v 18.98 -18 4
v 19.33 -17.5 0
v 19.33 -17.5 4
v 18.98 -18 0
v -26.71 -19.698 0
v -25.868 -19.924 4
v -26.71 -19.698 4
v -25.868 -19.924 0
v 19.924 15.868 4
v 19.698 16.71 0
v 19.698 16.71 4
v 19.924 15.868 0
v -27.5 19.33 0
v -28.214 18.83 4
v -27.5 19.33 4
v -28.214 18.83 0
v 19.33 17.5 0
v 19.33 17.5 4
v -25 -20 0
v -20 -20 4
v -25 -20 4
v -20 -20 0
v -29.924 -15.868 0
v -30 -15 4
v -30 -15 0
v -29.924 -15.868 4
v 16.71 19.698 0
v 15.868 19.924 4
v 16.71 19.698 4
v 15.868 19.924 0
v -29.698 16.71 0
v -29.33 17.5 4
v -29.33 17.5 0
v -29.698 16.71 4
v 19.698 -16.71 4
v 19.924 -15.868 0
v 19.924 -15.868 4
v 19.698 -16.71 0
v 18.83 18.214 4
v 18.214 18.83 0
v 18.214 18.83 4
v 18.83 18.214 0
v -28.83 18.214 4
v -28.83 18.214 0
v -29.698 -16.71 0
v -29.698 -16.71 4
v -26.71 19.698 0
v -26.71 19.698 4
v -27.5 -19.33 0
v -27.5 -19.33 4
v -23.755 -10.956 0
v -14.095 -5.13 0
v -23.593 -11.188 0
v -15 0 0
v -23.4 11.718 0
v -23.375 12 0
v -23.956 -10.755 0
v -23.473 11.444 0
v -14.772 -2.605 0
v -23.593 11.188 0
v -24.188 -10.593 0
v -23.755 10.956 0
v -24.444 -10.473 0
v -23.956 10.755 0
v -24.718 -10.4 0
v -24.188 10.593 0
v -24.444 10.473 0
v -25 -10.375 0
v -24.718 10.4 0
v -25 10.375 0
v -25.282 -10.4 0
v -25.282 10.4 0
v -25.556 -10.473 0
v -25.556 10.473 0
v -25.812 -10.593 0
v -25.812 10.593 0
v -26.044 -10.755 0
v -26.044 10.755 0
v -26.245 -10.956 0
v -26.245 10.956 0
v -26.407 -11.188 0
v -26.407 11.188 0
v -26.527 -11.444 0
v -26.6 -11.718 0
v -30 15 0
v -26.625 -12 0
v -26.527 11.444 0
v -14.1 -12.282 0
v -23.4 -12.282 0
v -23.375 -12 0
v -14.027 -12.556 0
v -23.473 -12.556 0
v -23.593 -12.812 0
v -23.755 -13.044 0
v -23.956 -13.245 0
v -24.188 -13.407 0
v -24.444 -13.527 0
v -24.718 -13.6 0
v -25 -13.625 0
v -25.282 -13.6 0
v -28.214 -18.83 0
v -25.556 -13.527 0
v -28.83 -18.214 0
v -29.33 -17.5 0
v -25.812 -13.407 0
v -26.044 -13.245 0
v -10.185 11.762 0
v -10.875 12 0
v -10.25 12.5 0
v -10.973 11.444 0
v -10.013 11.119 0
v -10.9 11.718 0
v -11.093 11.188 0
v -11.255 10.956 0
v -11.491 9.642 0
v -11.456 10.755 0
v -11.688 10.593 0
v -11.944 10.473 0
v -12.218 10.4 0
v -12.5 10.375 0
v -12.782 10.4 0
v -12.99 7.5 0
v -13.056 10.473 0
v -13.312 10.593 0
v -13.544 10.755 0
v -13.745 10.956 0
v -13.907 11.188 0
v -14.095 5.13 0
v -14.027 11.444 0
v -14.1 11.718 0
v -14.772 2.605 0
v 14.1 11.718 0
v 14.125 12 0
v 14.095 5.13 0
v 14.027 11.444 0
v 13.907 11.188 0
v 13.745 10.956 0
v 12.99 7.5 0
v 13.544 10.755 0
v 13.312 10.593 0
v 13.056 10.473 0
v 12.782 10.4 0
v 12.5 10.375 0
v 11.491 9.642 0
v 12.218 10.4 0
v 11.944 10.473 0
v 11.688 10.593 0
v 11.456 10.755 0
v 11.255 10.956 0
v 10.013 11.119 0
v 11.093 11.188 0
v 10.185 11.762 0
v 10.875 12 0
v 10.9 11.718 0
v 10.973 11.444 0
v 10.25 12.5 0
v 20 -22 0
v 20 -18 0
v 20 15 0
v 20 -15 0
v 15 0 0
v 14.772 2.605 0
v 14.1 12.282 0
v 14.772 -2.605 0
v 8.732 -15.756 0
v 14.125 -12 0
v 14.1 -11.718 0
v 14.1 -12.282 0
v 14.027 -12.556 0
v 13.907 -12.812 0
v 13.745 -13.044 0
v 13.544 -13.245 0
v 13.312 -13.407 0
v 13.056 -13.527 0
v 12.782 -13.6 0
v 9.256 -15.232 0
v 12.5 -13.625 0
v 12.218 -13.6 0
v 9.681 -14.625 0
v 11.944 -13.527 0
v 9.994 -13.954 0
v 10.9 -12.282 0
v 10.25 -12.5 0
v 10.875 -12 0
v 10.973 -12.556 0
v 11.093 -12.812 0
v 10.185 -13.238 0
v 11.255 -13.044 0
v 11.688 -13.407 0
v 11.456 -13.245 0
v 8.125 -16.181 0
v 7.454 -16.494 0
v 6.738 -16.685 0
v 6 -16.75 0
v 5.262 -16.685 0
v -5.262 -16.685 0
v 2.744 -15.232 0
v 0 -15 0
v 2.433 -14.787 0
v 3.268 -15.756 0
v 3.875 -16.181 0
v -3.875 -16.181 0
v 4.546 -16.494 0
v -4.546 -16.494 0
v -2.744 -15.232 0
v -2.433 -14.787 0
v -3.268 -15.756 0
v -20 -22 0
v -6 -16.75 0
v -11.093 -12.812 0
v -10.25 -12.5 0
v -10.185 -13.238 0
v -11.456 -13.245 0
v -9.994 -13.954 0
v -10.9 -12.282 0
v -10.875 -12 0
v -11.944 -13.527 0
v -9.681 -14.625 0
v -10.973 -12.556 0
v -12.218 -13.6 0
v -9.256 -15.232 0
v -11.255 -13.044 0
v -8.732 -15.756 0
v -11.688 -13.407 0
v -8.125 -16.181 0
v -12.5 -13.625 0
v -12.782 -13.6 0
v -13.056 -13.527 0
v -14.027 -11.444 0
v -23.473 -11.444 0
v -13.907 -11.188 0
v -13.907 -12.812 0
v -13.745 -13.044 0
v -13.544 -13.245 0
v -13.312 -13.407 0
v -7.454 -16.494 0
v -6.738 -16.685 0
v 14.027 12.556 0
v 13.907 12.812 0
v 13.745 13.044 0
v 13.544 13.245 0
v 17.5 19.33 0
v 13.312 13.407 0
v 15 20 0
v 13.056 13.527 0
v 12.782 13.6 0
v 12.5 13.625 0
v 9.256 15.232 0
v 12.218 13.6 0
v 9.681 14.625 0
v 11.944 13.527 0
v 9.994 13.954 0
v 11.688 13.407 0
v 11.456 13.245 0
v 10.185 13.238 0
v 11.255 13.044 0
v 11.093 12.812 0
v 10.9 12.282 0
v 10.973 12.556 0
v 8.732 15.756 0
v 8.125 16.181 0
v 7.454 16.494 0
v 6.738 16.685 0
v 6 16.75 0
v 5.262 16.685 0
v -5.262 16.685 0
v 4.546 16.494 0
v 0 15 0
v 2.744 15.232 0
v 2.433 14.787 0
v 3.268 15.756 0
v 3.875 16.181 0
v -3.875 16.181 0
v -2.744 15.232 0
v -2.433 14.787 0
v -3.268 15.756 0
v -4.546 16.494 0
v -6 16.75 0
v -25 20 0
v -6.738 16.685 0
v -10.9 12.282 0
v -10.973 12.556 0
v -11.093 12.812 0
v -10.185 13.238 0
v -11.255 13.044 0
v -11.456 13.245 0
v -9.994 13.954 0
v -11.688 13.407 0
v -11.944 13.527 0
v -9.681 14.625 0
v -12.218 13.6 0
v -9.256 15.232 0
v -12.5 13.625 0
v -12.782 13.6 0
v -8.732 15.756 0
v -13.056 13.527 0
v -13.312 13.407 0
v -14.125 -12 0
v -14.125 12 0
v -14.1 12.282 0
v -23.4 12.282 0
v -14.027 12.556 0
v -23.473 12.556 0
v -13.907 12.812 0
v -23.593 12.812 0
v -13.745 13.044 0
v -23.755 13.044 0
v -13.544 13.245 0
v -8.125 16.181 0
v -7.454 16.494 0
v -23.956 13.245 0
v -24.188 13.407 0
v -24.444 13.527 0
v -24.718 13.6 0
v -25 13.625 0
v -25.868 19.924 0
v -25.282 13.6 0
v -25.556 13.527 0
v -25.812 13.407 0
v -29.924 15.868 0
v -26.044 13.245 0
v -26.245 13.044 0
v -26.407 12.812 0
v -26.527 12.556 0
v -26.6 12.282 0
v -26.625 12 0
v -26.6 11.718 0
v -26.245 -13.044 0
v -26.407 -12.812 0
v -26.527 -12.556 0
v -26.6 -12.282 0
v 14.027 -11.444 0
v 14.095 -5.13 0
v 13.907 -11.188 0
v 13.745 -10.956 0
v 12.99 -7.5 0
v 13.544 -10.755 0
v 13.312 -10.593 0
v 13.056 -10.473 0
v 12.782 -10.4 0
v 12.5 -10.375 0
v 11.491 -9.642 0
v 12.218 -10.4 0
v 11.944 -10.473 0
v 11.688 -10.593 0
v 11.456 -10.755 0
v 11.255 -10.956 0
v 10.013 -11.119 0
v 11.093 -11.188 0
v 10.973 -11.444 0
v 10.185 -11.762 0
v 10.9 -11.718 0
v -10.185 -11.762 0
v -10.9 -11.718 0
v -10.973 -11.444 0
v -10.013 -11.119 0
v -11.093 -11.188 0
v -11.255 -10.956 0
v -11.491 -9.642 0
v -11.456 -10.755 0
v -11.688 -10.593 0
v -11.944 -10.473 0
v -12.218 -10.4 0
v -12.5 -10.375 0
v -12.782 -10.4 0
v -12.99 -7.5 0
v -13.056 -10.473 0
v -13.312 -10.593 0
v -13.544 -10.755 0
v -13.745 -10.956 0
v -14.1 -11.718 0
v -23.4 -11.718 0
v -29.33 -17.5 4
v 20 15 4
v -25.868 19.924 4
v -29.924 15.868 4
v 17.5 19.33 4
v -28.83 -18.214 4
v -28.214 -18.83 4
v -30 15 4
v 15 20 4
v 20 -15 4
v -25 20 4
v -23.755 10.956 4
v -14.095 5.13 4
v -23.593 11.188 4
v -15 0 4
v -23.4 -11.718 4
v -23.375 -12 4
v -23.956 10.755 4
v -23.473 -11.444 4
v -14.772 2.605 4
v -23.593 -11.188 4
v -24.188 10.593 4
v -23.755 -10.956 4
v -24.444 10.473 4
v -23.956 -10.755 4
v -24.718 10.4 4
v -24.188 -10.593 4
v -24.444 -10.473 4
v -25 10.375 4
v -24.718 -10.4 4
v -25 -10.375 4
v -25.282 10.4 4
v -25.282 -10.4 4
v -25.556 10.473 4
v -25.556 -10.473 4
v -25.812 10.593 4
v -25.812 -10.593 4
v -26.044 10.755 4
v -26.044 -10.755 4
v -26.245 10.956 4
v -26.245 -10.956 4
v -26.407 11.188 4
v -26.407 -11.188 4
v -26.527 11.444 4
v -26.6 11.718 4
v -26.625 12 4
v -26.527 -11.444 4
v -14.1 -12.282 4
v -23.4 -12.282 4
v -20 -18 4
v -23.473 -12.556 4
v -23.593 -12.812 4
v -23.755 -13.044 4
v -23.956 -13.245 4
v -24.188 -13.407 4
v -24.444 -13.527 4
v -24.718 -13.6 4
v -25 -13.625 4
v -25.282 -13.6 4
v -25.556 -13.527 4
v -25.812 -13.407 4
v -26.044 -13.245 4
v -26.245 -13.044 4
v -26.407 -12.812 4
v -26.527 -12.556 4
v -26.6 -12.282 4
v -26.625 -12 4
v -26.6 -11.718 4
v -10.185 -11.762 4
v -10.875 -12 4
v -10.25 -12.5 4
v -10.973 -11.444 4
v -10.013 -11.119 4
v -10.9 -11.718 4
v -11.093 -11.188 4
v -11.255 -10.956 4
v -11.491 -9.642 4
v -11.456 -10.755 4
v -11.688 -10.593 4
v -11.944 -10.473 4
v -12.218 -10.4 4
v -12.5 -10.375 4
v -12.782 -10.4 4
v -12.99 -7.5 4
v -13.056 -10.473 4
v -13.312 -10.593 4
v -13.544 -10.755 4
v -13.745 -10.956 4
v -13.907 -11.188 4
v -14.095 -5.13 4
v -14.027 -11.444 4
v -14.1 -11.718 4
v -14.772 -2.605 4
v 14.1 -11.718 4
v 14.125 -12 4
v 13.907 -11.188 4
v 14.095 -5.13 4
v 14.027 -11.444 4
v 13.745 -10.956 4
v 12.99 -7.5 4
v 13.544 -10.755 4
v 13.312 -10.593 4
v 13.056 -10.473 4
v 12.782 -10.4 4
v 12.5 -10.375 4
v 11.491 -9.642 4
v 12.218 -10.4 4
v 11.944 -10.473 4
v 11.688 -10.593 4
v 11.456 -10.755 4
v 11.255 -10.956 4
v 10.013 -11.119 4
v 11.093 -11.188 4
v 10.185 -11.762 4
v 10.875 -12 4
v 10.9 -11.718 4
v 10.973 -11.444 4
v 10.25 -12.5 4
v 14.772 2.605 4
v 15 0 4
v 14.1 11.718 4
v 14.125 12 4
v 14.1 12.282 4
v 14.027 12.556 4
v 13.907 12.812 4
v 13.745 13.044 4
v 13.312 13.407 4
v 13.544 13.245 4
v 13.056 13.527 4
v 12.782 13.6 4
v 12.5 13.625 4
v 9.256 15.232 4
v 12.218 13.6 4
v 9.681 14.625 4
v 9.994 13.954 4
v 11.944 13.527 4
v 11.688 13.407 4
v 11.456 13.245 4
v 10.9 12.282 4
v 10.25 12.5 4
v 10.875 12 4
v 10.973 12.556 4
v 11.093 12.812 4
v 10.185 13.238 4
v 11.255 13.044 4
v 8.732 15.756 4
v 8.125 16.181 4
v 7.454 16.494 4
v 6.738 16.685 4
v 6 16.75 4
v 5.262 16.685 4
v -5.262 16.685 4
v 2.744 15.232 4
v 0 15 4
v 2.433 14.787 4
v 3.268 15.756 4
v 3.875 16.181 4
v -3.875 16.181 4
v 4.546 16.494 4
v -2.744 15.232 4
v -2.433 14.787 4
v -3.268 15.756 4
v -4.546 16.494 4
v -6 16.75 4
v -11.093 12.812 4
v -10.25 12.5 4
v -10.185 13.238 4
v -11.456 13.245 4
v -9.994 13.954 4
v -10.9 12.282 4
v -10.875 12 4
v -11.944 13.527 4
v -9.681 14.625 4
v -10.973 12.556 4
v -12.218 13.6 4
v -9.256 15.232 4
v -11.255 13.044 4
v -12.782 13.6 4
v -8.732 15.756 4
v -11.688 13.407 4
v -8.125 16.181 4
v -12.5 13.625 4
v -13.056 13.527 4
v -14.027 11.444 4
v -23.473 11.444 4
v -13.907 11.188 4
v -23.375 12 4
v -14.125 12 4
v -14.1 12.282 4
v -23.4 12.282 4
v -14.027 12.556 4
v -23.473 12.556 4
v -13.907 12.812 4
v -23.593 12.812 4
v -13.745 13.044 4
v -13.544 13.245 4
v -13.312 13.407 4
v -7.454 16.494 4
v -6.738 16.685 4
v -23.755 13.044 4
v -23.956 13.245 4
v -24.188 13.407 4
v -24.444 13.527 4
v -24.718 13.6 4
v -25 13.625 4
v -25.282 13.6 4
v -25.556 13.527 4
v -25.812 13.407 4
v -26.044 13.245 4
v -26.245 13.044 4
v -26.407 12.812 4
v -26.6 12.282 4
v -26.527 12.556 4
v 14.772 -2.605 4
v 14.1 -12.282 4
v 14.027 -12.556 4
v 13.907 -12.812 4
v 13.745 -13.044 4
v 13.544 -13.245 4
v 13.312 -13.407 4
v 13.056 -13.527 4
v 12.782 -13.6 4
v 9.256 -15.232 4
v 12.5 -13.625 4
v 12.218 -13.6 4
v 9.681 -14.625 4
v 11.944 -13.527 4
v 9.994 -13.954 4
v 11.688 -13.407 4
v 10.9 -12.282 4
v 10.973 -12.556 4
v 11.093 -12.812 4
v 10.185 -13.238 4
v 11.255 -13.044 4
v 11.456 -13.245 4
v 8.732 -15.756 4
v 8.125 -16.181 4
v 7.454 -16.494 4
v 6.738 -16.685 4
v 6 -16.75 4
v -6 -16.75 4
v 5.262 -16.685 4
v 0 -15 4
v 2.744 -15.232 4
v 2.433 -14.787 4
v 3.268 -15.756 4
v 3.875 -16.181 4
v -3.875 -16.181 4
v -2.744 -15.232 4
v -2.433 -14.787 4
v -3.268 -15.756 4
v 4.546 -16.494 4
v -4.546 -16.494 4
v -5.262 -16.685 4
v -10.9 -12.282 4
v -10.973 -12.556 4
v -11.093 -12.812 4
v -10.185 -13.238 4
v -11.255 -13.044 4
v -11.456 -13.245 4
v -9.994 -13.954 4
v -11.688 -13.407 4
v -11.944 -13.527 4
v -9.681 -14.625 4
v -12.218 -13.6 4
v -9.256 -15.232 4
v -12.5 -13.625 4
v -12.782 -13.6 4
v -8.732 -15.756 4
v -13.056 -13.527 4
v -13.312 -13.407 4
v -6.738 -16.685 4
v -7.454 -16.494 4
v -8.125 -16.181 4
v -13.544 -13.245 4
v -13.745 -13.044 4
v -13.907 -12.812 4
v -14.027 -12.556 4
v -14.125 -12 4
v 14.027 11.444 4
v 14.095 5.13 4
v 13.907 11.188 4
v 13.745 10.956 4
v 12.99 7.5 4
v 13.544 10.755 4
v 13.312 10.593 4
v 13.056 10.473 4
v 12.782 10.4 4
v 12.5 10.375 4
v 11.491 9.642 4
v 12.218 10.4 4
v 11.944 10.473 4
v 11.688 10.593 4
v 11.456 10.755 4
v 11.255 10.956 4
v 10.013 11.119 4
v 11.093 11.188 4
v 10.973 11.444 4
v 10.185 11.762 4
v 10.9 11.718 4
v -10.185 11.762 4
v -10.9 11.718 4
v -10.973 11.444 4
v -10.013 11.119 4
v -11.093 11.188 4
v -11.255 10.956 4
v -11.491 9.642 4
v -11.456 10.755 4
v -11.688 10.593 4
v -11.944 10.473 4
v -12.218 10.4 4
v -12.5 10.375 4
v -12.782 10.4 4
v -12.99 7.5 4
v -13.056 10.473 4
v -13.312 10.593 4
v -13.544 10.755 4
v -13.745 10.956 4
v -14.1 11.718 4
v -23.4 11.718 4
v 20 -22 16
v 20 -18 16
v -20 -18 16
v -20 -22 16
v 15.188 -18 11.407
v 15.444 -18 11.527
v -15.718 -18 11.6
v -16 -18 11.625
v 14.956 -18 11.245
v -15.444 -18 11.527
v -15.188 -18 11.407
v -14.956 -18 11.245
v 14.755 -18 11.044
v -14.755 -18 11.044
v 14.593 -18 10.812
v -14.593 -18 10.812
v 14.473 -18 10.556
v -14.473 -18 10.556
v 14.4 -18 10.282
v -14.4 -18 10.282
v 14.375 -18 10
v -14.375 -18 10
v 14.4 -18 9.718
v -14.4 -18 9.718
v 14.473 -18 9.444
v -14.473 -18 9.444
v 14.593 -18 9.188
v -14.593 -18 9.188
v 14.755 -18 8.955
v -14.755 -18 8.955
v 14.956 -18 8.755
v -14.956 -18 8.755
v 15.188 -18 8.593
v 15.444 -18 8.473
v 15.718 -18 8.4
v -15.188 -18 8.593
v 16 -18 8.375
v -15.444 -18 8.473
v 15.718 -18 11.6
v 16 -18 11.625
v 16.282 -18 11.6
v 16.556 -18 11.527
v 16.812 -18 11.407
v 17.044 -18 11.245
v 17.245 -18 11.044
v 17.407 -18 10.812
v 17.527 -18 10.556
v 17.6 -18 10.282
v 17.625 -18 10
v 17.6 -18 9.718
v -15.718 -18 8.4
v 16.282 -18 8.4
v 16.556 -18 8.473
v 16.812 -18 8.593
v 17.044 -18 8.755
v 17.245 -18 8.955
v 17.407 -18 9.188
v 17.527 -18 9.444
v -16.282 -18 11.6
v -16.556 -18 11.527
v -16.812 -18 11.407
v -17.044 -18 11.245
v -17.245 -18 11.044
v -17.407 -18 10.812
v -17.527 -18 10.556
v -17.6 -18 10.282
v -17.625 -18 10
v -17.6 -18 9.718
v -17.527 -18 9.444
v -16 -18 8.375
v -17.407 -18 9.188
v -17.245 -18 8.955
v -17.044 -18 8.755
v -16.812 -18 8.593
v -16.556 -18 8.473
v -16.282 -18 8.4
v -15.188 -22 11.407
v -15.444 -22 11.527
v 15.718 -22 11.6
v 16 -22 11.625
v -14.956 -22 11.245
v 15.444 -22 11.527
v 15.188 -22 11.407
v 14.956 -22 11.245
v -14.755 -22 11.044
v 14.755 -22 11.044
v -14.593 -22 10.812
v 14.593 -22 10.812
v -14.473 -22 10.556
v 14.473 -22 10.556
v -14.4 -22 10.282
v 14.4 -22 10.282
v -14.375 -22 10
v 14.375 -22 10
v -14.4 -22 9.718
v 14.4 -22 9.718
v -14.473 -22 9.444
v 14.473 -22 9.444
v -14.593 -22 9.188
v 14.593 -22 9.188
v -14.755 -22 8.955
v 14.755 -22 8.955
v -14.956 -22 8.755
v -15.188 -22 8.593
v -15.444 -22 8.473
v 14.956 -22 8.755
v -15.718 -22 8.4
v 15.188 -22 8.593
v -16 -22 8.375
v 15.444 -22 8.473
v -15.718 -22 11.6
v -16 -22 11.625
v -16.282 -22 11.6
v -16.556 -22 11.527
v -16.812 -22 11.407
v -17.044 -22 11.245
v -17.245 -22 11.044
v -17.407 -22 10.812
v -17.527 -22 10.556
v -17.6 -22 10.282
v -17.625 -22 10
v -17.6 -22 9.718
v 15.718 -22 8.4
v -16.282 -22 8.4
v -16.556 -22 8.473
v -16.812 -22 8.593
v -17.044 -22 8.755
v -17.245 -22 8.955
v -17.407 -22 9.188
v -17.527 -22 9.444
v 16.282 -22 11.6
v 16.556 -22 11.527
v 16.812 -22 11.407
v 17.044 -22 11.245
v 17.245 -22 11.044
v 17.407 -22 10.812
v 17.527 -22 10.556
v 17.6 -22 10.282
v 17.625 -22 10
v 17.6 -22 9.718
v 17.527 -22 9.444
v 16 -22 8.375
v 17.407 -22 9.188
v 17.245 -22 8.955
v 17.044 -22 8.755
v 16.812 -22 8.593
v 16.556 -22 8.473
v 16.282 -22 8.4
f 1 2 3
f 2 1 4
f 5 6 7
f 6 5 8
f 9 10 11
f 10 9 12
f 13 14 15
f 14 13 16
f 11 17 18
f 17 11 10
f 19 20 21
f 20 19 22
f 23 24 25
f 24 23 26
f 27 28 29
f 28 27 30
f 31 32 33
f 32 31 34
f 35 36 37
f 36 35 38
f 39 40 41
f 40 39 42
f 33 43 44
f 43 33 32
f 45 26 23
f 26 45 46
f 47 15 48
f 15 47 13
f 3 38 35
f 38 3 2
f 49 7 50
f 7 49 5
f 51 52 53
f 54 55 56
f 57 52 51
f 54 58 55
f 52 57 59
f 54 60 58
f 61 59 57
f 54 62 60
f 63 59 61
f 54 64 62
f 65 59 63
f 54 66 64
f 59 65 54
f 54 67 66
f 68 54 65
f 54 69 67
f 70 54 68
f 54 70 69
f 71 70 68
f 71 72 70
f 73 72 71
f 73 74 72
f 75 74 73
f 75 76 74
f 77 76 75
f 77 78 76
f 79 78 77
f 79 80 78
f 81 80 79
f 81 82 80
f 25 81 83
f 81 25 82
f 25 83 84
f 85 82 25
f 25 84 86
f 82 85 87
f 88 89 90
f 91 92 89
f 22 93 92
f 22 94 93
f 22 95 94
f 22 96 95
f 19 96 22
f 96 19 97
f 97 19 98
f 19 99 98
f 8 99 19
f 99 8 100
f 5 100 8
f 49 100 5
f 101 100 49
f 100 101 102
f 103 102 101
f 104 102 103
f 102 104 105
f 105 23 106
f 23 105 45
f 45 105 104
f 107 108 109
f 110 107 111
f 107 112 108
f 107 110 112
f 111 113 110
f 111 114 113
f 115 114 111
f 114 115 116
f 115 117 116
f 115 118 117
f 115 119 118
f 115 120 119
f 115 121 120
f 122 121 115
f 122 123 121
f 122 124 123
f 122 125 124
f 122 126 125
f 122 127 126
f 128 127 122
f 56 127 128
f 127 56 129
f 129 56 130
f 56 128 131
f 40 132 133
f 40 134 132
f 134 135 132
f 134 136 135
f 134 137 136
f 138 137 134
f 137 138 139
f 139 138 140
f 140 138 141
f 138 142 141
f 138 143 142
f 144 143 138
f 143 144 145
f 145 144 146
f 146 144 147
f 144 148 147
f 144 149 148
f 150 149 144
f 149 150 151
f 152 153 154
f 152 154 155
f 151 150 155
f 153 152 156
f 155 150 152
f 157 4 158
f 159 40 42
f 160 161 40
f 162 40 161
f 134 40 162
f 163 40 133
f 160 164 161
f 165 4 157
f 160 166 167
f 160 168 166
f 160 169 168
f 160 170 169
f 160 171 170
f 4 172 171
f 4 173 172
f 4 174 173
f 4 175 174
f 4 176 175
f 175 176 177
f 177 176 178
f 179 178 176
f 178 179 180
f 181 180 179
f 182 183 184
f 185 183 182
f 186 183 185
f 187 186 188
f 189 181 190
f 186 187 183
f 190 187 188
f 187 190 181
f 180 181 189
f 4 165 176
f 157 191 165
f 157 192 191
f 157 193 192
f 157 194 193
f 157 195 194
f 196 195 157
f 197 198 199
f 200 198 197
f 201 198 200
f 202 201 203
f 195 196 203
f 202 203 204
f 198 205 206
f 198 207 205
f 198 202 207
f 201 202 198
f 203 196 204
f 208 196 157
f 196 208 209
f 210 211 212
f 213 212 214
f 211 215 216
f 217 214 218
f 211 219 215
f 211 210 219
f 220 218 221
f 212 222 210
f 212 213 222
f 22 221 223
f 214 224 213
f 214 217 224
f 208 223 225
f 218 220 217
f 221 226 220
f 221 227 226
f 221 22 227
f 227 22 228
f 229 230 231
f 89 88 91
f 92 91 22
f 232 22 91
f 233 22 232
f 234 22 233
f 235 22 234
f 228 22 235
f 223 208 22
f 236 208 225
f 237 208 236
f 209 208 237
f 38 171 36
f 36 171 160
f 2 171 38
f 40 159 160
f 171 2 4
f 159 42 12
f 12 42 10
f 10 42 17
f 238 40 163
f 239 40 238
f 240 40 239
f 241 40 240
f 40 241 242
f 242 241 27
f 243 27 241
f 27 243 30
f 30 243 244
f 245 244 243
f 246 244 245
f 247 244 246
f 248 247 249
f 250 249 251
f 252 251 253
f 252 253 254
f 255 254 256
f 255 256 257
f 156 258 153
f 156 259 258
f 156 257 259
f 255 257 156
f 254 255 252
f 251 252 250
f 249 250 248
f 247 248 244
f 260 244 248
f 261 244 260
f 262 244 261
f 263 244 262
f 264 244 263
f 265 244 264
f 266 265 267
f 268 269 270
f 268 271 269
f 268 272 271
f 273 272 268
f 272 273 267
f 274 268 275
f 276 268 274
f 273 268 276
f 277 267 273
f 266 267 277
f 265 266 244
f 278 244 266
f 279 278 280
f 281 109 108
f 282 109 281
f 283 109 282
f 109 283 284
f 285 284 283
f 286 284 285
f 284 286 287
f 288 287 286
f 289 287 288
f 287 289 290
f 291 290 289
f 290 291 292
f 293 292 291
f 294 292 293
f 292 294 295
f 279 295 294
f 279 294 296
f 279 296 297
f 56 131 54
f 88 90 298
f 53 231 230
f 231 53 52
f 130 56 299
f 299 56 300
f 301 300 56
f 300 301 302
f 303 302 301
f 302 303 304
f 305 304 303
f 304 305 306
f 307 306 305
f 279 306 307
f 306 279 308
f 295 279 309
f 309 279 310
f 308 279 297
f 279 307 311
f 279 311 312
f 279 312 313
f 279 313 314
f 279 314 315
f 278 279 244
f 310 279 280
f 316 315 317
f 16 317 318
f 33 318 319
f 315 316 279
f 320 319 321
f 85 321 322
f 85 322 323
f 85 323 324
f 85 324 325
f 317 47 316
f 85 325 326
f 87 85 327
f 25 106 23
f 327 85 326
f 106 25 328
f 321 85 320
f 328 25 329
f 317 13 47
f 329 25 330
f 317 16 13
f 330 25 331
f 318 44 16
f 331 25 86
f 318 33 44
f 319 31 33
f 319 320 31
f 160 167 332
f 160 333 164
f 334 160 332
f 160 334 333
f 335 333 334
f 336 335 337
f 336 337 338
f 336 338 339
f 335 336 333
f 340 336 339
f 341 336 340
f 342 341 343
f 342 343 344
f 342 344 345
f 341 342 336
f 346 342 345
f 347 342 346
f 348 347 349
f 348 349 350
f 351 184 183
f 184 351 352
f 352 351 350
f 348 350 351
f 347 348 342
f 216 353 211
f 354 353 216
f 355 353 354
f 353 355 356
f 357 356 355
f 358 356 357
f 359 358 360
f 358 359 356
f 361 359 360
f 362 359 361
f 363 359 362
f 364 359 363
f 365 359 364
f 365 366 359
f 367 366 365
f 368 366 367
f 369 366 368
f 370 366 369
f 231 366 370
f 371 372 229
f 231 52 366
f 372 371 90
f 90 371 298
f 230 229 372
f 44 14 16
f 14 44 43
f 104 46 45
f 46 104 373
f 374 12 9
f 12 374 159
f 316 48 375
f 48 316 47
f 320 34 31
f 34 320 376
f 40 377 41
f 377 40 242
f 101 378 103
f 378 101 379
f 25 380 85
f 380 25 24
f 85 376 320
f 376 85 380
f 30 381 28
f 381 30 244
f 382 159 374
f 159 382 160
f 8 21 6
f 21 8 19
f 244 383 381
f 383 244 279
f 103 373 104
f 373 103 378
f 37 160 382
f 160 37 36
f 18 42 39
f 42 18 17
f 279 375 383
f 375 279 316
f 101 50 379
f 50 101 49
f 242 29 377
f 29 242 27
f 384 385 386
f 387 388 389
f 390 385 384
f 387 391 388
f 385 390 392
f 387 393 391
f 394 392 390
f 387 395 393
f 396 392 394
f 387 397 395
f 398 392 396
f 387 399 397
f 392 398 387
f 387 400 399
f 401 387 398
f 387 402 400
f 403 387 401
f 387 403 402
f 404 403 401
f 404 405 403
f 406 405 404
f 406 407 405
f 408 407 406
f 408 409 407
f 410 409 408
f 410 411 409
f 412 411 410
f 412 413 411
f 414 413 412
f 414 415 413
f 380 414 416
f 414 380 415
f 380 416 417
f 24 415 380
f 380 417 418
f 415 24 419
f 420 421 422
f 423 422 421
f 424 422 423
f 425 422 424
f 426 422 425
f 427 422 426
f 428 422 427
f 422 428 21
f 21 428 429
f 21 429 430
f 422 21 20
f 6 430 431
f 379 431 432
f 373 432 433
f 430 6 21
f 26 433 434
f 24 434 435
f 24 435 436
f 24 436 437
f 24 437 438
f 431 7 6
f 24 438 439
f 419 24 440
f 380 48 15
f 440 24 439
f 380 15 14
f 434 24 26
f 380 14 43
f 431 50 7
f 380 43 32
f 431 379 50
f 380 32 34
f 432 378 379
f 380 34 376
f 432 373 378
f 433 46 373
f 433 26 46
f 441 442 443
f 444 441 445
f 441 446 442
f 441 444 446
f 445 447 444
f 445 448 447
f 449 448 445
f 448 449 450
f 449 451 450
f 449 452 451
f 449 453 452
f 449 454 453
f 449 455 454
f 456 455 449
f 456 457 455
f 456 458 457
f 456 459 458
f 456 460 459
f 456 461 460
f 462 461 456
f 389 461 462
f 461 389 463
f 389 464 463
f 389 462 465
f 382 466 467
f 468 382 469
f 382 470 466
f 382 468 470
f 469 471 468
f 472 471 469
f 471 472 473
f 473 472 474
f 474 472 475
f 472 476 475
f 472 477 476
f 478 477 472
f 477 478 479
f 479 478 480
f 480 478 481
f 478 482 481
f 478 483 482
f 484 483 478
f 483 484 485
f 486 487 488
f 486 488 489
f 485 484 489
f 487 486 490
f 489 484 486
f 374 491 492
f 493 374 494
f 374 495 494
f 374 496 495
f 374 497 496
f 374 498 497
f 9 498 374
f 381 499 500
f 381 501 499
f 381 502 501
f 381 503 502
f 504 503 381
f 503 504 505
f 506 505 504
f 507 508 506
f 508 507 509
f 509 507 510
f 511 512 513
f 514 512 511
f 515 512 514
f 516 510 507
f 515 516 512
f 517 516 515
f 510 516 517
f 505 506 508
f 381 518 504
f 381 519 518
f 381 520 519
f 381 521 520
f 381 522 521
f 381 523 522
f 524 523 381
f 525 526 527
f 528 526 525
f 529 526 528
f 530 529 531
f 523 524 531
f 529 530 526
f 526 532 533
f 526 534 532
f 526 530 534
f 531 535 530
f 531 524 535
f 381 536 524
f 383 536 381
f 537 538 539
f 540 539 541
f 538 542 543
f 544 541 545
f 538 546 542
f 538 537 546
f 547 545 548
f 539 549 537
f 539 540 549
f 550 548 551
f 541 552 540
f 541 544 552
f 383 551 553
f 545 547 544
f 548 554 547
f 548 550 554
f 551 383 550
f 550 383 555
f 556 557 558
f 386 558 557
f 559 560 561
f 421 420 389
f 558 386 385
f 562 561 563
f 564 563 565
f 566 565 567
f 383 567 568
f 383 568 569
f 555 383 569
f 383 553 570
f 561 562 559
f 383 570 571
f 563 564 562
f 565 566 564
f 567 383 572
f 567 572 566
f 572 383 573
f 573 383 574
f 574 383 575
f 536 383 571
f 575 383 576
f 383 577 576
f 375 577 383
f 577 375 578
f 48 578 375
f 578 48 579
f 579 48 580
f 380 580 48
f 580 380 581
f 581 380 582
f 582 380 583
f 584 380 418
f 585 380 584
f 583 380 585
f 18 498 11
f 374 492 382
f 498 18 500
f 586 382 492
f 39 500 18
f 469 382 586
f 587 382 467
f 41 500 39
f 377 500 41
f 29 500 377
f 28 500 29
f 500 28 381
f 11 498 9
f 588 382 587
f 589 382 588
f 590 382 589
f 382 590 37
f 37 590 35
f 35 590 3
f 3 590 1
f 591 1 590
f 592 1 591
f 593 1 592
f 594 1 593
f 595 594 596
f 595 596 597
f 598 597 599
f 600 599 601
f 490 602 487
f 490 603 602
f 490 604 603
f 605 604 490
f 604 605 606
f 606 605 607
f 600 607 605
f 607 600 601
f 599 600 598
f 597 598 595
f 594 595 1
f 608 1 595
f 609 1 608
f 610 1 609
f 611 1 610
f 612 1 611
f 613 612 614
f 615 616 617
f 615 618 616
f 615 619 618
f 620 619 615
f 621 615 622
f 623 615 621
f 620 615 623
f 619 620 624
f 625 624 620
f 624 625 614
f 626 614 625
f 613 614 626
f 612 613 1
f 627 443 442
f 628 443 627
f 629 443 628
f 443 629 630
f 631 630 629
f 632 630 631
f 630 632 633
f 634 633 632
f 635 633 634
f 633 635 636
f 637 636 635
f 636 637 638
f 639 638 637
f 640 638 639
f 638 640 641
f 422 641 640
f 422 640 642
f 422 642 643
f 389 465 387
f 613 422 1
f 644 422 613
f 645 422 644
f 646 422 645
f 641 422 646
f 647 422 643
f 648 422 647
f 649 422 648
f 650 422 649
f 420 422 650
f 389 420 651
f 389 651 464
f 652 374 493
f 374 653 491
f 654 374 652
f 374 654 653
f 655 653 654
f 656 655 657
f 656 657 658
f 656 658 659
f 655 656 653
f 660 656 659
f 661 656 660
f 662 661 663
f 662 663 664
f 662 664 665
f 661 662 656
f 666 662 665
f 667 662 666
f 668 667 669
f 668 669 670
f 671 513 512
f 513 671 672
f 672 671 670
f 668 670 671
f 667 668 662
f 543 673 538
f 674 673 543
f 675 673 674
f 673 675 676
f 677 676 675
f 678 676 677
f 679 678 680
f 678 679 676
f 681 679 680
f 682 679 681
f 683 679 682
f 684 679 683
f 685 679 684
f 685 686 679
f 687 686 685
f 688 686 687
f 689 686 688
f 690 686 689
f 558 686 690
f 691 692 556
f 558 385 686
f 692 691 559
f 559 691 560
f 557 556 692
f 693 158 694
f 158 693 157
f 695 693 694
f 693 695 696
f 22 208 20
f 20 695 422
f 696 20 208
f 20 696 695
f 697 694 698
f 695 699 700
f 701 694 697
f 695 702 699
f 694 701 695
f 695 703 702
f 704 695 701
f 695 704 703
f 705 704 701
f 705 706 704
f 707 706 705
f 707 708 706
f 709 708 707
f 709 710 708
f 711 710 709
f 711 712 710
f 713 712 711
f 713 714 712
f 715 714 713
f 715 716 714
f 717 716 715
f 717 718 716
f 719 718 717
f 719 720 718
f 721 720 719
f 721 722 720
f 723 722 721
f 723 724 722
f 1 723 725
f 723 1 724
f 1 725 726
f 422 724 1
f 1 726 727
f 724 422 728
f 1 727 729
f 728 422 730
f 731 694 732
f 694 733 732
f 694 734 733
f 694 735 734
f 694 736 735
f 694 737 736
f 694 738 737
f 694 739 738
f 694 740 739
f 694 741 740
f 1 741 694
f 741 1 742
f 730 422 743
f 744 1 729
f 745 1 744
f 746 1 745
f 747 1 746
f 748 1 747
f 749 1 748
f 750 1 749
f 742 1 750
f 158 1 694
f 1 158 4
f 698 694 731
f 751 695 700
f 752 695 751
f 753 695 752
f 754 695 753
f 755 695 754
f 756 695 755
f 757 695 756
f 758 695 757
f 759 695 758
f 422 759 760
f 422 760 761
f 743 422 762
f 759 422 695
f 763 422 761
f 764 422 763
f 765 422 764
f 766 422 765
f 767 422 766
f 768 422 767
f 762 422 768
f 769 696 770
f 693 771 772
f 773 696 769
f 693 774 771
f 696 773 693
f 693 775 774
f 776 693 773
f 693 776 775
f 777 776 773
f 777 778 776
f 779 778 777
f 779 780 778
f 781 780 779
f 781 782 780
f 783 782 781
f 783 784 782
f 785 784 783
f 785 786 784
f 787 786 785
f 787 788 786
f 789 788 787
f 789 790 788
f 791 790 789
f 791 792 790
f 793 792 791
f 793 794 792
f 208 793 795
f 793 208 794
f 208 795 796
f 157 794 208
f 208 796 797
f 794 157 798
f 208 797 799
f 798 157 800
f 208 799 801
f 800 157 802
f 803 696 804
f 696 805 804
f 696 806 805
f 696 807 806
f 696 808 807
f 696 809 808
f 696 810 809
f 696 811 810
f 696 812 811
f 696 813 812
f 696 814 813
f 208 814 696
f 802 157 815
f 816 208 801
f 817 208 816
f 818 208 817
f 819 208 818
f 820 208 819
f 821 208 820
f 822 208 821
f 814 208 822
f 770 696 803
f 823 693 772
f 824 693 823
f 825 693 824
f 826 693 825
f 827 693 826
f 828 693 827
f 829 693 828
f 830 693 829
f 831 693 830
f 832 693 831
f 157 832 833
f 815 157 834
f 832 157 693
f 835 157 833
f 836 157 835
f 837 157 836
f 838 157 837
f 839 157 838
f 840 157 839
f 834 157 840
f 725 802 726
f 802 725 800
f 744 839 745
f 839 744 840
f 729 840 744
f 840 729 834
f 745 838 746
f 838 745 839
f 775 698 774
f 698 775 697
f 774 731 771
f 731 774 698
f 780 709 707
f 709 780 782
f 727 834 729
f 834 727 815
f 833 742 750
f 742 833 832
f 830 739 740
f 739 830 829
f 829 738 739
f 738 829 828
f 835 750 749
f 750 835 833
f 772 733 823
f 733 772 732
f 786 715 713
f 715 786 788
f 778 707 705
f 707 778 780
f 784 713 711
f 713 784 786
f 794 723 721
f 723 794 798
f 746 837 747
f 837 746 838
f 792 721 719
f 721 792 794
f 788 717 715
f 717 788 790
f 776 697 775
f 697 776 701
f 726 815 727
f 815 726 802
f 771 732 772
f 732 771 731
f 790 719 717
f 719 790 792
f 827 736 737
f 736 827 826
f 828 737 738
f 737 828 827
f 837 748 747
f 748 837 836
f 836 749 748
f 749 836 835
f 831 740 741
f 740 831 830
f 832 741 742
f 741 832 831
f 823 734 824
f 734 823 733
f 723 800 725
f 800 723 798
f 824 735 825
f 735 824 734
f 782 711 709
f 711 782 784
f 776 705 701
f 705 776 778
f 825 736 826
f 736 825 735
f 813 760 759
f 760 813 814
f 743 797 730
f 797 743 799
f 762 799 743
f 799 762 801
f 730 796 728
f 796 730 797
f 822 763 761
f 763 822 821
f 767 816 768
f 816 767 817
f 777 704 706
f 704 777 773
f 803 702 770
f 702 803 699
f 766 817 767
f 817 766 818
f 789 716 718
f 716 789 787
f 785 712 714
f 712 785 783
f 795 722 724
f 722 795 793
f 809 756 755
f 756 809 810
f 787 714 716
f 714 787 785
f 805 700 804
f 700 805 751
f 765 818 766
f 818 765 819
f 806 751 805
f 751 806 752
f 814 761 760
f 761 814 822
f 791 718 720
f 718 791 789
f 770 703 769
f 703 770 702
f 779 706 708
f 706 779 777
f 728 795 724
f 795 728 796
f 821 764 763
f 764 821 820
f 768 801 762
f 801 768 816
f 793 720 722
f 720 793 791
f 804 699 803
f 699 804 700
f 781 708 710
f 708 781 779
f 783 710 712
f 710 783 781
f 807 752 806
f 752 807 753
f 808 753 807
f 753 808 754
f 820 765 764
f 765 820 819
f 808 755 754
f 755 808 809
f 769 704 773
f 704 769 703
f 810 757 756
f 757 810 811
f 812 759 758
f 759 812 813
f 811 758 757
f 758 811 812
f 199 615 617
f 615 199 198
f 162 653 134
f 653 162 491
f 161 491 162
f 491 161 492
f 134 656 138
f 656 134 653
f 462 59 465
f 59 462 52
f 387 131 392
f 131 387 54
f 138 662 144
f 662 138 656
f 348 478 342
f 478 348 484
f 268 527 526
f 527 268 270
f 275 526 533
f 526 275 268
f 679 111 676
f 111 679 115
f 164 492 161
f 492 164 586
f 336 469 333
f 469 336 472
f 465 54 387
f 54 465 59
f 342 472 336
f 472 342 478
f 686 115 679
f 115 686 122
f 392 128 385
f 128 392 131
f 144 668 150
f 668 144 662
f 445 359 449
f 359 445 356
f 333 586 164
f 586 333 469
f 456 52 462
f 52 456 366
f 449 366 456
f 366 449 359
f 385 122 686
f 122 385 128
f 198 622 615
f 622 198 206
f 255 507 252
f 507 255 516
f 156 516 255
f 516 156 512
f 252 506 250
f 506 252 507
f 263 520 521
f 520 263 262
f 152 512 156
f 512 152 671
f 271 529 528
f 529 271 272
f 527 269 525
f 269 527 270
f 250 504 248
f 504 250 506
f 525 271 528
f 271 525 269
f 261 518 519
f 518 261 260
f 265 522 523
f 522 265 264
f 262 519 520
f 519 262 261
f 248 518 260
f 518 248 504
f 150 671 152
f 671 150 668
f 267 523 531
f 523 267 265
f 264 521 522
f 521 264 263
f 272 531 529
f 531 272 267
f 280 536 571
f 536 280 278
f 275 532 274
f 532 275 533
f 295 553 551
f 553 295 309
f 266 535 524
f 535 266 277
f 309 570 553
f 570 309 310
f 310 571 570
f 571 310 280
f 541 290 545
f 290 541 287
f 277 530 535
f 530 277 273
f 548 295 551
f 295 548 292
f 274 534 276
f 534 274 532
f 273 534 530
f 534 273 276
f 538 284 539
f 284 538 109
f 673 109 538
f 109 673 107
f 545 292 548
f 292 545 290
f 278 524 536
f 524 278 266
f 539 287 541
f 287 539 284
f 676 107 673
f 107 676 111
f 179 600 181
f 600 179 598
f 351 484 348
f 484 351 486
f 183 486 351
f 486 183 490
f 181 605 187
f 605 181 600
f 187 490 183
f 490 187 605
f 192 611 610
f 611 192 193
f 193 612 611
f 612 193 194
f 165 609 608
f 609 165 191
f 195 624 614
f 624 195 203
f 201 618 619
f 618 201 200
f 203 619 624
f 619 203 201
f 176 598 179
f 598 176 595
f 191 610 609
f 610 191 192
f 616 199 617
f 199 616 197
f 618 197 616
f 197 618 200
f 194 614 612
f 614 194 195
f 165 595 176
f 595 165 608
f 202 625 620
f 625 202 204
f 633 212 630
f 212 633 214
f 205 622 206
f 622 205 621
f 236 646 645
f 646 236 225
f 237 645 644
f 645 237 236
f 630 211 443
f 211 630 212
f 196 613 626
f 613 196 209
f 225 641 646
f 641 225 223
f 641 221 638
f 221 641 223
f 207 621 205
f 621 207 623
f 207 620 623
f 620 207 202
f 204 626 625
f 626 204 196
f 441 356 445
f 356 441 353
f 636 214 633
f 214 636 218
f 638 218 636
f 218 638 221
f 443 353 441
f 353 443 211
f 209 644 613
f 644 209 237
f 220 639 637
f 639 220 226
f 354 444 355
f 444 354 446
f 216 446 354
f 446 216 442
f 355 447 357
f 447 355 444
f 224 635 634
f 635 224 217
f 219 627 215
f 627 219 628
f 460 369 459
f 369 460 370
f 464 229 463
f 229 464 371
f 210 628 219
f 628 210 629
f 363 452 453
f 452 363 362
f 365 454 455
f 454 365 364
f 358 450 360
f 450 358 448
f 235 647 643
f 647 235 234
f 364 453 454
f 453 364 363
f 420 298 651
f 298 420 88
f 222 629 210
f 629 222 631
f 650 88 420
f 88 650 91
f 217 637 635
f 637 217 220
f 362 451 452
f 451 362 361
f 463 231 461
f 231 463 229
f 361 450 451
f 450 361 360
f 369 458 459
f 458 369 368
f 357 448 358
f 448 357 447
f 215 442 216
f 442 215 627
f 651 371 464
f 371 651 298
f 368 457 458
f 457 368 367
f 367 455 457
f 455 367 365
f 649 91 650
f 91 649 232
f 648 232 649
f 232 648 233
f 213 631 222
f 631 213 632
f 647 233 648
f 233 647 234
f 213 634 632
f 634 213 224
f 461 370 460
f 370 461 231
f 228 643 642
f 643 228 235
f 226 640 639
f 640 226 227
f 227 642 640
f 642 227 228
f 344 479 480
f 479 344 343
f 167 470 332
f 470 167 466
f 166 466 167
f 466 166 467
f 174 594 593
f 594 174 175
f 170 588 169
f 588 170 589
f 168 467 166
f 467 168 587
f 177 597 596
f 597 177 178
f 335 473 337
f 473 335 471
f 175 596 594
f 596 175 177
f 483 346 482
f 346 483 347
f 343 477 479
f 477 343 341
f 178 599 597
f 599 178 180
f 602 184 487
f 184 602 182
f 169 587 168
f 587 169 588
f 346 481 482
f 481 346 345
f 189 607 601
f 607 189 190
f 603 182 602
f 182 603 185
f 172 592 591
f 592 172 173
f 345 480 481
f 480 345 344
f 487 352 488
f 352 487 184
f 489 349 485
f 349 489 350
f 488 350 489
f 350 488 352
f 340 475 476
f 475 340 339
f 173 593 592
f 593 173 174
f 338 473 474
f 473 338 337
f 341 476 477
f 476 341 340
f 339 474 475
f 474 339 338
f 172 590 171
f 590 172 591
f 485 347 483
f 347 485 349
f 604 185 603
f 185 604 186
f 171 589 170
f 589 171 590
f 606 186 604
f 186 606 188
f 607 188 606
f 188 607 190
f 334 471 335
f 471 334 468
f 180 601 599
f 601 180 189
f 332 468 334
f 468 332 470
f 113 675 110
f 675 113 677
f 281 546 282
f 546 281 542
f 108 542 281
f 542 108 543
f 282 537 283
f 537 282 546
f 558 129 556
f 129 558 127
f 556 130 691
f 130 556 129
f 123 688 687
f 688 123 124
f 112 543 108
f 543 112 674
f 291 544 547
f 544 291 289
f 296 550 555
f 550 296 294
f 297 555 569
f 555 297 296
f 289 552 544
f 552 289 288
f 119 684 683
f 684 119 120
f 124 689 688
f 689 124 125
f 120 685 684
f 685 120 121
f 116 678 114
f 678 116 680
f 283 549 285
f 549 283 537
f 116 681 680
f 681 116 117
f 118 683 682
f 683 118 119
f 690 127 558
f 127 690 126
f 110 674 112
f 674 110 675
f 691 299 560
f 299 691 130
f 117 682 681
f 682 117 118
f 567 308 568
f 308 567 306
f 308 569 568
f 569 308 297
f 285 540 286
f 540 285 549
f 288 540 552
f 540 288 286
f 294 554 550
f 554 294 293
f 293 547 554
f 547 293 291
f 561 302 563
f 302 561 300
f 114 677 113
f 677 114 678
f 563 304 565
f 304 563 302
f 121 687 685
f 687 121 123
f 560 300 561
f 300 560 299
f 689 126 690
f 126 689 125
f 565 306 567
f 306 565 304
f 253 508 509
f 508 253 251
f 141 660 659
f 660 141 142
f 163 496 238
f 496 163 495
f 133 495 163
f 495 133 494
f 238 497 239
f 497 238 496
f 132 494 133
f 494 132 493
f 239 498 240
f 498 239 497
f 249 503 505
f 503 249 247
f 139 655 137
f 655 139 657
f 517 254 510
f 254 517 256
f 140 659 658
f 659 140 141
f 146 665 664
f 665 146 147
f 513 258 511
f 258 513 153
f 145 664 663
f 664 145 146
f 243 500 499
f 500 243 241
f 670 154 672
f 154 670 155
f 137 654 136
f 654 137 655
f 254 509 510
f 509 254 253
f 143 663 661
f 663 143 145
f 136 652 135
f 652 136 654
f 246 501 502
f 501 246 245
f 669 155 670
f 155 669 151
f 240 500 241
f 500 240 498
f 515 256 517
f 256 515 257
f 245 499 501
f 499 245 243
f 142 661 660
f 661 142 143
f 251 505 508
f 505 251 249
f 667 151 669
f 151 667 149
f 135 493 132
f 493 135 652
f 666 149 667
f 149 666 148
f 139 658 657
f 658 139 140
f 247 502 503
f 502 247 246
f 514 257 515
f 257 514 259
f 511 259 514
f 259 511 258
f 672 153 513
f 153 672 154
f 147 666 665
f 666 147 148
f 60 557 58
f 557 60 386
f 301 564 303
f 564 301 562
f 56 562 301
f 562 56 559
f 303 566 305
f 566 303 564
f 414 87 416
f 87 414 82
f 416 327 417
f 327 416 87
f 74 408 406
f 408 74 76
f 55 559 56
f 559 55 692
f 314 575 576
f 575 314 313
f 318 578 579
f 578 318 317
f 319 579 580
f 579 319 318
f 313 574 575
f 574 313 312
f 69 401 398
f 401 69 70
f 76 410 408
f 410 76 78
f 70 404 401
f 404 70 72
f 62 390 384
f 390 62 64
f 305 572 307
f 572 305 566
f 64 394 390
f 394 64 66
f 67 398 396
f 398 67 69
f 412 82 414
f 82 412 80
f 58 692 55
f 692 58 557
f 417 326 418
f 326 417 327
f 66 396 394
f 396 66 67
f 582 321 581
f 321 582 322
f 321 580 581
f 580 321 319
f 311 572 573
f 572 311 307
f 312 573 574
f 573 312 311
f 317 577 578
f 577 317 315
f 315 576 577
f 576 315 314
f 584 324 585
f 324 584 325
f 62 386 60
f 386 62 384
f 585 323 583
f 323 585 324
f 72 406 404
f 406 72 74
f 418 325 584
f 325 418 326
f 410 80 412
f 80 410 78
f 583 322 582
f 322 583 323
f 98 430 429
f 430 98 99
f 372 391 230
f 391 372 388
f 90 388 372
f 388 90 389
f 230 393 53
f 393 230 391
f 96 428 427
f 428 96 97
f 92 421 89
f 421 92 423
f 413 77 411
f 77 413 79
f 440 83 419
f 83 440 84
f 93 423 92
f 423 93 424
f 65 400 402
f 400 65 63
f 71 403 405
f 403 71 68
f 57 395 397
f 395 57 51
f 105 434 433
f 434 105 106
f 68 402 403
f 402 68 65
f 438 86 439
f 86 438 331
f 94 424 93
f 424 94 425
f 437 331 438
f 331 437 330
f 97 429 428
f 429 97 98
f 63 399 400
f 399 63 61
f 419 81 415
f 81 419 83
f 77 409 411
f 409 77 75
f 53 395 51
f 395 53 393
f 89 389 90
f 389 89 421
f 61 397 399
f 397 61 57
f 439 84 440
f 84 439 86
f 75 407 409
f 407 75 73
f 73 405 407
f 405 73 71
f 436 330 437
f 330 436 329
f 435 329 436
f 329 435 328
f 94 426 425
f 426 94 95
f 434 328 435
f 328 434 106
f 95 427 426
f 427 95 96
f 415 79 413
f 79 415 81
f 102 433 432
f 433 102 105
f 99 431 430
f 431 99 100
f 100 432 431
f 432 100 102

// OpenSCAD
/*
 * Machdyne PNP
 * Copyright (c) 2023 Lone Dynamics Corporation. All rights reserved.
 *
 * Down-Facing Camera Mount (for W202012HD cameras)
 *
 */

$fn = 36;

//dfcmt();
//dfcmc();
dfcm();

// clip
module dfcmc() {
	difference() {
		union() {
			translate([-40/2-8.5, -40/2, 10]) roundedcube(7.5,40,2,2.5);			
			translate([-40/2-4.75-2, -40/2+20, 10]) cube([1,15,1], center=true);
			translate([-40/2-4.75+2, -40/2+20, 10]) cube([1,15,1], center=true);
			translate([-40/2-4.75, -40/2+20, 10]) cube([1,15,1], center=true);
		}
		translate([-25,12,-20]) cylinder(d=3.25, h=50, $fn=36);
		translate([-25,-12,-20]) cylinder(d=3.25, h=50, $fn=36);
	}
}

// tool for installing the camera mount
module dfcmt() {

	difference() {
		union() {
			cube([100,10,3], center=true);
			translate([-50,0,1]) cylinder(d=10, h=5, center=true);
		}
		translate([-50,0,-0.5]) cylinder(d=7, h=5, $fn=6);
	}
}

module dfcm() {

	difference() {

		union() {
			translate([-40/2-10, -40/2, 0]) roundedcube(50,40,4,5);
			translate([0,-20,8]) cube([40,4,16], center=true);
		}
		
		translate([0,-35/2+2,-10]) cube([30.5,70,16], center=true);
		translate([0,0,10]) cylinder(d=30, h=40, center=true);
		
		translate([6,12.5,10]) cylinder(d=8.5, h=40, center=true);
		translate([-6,12.5,10]) cylinder(d=8.5, h=40, center=true);
		translate([6,-12.5,10]) cylinder(d=8.5, h=40, center=true);
		translate([-6,-12.5,10]) cylinder(d=8.5, h=40, center=true);

		rotate([90,90,0]) {
			translate([-10,16,-0]) cylinder(d=3.25, h=100, center=true);
			translate([-10,-16,0]) cylinder(d=3.25, h=100, center=true);
		}
	
		// camera mount holes
		translate([-12.5,-12,-5]) cylinder(d=3.25, h=15, $fn=36);
		translate([12.5,-12,-5]) cylinder(d=3.25, h=15, $fn=36);
		translate([-12.5,12,-5]) cylinder(d=3.25, h=15, $fn=36);
		translate([12.5,12,-5]) cylinder(d=3.25, h=15, $fn=36);	
		
		// cable clamp hole
		translate([-25,12,-5]) cylinder(d=3.25, h=15, $fn=36);
		translate([-25,-12,-5]) cylinder(d=3.25, h=15, $fn=36);
	}

}

module roundedcube(xx, yy, height, radius)
{
    translate([0,0,height/2])
    hull()
    {
        translate([radius,radius,0])
        cylinder(height,radius,radius,true);

        translate([xx-radius,radius,0])
        cylinder(height,radius,radius,true);

        translate([xx-radius,yy-radius,0])
        cylinder(height,radius,radius,true);

        translate([radius,yy-radius,0])
        cylinder(height,radius,radius,true);
    }
}
